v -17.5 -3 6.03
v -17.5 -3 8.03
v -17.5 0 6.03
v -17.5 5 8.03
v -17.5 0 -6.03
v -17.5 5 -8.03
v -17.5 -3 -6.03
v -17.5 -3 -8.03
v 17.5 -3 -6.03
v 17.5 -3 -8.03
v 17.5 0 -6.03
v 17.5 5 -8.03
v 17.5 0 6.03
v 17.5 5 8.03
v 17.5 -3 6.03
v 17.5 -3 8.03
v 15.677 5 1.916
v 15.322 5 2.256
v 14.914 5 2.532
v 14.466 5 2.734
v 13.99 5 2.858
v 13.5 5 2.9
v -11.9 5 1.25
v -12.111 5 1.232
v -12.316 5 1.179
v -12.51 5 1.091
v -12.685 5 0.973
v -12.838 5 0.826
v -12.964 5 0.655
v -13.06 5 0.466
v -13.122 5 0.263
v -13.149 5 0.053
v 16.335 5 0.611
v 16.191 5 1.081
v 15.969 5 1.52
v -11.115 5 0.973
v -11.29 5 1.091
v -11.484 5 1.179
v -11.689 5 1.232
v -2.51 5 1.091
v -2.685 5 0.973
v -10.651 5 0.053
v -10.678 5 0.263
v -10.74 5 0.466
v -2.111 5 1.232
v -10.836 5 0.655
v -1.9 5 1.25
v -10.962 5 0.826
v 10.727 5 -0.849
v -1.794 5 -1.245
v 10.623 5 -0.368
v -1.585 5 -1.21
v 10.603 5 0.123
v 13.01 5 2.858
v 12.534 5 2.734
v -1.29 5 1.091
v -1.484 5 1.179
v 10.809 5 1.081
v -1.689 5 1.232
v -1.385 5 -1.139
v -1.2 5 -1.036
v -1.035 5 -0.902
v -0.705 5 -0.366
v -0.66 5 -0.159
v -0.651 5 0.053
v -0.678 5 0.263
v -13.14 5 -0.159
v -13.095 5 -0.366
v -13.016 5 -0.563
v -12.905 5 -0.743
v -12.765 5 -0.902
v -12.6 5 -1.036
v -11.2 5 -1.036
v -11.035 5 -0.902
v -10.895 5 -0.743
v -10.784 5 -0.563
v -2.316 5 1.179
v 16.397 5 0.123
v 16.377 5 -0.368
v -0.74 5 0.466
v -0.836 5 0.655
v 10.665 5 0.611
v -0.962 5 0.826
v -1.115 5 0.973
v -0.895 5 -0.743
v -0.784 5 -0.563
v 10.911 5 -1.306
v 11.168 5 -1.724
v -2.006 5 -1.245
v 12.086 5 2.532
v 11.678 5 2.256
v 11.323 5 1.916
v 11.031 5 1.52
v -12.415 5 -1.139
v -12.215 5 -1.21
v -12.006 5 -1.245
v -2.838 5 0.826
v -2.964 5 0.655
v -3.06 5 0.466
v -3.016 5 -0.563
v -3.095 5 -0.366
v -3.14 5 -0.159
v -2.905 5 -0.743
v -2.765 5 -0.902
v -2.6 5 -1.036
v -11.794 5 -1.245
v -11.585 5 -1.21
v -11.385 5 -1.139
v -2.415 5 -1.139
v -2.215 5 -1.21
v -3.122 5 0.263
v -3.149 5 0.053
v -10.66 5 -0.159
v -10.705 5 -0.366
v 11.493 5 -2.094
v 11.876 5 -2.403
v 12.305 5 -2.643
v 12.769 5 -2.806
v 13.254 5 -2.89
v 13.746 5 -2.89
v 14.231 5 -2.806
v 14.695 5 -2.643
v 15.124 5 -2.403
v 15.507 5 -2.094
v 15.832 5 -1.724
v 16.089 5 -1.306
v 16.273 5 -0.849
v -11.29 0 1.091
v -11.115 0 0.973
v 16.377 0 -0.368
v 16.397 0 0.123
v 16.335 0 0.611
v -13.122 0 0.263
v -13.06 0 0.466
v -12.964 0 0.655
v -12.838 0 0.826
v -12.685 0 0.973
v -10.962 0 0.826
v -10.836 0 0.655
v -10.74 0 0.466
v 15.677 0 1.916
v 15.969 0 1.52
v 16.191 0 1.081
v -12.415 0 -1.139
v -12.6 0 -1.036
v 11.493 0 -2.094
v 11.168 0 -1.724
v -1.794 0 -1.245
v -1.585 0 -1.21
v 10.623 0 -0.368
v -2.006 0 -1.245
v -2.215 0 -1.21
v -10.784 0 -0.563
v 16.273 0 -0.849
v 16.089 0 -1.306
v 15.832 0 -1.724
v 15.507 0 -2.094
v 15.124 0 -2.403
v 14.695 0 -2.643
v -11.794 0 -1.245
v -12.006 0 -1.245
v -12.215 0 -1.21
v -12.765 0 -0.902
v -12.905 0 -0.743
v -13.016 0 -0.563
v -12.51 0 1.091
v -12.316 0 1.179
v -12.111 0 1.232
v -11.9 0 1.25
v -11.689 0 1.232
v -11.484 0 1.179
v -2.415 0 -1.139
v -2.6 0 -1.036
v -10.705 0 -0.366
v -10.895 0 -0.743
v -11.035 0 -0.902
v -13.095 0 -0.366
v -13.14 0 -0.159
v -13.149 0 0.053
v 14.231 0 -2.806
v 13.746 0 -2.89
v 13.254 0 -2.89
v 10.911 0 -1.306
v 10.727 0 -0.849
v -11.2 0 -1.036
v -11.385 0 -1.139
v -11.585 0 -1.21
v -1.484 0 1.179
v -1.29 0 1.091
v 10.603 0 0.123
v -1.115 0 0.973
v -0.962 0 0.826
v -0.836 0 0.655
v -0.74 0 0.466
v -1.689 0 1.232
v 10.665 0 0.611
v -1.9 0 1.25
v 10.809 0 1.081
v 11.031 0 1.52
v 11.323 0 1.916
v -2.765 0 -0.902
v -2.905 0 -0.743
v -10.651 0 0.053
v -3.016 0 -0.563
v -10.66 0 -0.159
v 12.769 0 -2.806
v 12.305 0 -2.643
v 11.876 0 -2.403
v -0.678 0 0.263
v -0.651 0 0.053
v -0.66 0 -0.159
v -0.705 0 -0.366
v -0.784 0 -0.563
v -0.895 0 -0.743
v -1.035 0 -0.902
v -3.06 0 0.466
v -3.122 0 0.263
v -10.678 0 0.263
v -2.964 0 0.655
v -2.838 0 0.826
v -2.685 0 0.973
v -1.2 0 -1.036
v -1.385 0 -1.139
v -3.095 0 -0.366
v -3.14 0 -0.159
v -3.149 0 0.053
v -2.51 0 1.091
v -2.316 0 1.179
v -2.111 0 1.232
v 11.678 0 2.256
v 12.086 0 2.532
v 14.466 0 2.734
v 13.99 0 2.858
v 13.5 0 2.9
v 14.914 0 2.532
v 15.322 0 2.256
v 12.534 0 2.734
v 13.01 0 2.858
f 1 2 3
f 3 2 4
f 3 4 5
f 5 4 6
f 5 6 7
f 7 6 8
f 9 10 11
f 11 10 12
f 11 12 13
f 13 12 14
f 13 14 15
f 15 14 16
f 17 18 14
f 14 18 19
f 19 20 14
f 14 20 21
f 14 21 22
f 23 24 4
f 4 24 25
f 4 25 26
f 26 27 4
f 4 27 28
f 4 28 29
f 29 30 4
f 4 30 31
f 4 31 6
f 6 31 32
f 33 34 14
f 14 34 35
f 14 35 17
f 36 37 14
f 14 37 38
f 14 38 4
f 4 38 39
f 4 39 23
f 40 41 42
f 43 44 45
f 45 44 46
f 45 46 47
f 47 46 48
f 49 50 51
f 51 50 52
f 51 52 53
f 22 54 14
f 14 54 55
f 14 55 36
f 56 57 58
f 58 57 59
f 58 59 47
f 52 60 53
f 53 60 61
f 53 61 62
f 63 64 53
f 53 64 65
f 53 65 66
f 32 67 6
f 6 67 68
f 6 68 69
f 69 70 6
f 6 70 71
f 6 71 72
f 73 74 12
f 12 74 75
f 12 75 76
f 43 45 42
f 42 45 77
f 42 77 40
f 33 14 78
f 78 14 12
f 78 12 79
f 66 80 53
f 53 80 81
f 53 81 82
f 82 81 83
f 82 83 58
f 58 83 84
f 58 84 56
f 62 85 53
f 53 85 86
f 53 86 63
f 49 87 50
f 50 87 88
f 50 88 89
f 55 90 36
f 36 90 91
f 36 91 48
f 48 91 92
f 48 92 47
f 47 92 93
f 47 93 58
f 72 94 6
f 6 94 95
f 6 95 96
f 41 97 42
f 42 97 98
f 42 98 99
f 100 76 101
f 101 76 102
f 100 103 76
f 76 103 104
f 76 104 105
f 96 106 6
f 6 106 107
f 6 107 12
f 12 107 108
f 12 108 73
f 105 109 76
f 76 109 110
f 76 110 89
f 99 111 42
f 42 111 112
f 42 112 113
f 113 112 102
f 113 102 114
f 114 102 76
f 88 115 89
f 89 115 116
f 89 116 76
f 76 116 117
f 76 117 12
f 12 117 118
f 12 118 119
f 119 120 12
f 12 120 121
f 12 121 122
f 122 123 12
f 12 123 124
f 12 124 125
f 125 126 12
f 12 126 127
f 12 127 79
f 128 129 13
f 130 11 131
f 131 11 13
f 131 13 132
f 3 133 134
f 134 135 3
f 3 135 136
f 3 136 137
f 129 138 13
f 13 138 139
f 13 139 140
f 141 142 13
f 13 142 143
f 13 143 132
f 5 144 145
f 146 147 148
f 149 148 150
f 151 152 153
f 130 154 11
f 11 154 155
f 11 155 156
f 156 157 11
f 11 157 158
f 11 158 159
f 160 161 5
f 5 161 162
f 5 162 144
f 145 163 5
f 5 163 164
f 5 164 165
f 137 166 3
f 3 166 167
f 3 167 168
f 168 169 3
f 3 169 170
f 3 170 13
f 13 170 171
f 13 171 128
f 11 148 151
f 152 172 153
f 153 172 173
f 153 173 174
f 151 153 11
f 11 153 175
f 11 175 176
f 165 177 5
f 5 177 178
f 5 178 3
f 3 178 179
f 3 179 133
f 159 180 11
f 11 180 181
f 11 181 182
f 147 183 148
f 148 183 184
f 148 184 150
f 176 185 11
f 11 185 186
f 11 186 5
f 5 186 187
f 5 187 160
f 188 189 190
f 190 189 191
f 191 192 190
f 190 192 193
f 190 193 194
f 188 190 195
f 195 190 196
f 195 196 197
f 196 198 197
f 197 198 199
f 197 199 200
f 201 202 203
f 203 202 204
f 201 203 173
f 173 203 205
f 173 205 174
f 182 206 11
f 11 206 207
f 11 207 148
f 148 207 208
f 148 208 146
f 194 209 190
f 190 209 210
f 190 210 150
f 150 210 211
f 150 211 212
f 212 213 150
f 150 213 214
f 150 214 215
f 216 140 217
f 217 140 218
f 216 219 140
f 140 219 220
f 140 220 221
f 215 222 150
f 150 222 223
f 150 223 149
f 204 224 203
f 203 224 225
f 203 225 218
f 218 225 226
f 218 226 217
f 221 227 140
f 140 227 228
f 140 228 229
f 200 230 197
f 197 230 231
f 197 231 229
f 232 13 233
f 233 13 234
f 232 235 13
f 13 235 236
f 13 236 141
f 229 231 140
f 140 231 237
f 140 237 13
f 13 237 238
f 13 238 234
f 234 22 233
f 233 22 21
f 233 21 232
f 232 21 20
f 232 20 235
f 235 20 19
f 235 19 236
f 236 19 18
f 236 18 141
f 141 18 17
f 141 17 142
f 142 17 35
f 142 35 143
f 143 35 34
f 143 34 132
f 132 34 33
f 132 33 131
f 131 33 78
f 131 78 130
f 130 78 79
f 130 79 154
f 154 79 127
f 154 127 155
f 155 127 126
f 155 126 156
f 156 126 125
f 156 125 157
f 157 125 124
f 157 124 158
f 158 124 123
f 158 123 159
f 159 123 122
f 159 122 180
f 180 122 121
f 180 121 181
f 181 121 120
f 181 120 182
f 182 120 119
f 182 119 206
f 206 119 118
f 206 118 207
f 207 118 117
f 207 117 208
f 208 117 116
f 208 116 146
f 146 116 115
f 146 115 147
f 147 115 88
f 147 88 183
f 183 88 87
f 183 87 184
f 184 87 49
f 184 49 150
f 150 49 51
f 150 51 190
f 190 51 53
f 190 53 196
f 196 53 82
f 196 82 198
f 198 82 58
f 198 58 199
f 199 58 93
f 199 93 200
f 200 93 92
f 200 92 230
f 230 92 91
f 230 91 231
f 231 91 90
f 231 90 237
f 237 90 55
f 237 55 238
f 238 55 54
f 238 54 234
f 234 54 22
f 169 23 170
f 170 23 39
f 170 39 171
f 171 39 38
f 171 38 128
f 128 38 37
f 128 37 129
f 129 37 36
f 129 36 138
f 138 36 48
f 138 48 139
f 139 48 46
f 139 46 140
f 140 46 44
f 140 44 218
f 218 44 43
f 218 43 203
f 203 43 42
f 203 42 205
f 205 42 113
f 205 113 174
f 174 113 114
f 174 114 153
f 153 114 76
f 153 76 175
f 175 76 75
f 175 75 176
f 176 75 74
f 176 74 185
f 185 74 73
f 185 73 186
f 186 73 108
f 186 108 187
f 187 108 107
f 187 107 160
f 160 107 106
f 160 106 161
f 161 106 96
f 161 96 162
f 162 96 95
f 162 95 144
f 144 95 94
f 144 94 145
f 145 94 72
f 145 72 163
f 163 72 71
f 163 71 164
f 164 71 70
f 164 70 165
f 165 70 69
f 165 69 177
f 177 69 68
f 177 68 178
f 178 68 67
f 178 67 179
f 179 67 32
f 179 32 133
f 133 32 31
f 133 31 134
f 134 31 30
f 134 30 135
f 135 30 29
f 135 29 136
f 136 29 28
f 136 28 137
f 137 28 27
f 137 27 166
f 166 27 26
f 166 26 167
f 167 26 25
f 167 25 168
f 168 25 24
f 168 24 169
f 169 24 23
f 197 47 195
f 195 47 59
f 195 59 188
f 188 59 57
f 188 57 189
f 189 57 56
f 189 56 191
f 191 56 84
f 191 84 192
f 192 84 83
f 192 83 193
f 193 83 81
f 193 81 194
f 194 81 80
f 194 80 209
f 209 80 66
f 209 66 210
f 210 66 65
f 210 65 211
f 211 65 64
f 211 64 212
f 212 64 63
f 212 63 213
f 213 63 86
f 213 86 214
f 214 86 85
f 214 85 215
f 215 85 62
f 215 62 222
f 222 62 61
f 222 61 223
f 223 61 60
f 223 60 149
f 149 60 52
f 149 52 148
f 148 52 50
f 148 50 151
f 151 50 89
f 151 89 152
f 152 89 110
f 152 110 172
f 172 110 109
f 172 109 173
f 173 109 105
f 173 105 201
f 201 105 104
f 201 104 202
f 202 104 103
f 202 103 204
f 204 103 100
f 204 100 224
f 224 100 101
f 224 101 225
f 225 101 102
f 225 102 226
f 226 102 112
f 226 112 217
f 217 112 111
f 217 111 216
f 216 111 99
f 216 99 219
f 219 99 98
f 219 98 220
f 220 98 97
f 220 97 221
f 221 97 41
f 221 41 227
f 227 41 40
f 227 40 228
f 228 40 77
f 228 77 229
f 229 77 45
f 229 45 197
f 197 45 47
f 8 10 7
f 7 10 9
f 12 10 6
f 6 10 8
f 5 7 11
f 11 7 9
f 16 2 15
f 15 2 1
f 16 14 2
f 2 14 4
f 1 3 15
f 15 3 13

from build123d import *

# Parameters (mm, degrees)
SKETCH1_W                   = 35
SKETCH1_H                   = 12.06
BOSS_EXTRUDE1_DEPTH         = 5
M5_CLEARANCE_HOLE1_D        = 5.8
TAP_DRILL_FOR_M3X0_5_TAP1_D = 2.5
SKETCH7_W                   = 35
SKETCH7_H                   = 8
BOSS_EXTRUDE2_DEPTH         = 2


with BuildPart() as part:
    # Sketch1 → Boss-Extrude1 (new body)
    with BuildSketch(Plane(origin=(0, 0, 0), x_dir=(1, 0, 0), z_dir=(0, 1, 0))):
        Rectangle(SKETCH1_W, SKETCH1_H)
    extrude(amount=BOSS_EXTRUDE1_DEPTH)

    # M5 Clearance Hole1 (through all)
    with Locations(Plane(origin=(0, 5, 0), x_dir=(1, 0, 0), z_dir=(0, 1, 0))):
        with Locations((13.5, 0)):
            Hole(M5_CLEARANCE_HOLE1_D / 2)

    # Tap Drill for M3x0.5 Tap1 (through all)
    with Locations(Plane(origin=(0, 5, 0), x_dir=(1, 0, 0), z_dir=(0, 1, 0))):
        with Locations((-1.9, 0), (-11.9, 0)):
            Hole(TAP_DRILL_FOR_M3X0_5_TAP1_D / 2)

    # Sketch7 → Boss-Extrude2 (add)
    with BuildSketch(Plane(origin=(0, 0, -6.03), x_dir=(-1, 0, 0), z_dir=(0, 0, -1))):
        with Locations((0, 1)):
            Rectangle(SKETCH7_W, SKETCH7_H)
    extrude(amount=BOSS_EXTRUDE2_DEPTH)

    # Mirror1: part across plane


with BuildPart() as part_1:
    add(part.part)
    add(part.part.mirror(Plane.XY))


solid = part_1.part
